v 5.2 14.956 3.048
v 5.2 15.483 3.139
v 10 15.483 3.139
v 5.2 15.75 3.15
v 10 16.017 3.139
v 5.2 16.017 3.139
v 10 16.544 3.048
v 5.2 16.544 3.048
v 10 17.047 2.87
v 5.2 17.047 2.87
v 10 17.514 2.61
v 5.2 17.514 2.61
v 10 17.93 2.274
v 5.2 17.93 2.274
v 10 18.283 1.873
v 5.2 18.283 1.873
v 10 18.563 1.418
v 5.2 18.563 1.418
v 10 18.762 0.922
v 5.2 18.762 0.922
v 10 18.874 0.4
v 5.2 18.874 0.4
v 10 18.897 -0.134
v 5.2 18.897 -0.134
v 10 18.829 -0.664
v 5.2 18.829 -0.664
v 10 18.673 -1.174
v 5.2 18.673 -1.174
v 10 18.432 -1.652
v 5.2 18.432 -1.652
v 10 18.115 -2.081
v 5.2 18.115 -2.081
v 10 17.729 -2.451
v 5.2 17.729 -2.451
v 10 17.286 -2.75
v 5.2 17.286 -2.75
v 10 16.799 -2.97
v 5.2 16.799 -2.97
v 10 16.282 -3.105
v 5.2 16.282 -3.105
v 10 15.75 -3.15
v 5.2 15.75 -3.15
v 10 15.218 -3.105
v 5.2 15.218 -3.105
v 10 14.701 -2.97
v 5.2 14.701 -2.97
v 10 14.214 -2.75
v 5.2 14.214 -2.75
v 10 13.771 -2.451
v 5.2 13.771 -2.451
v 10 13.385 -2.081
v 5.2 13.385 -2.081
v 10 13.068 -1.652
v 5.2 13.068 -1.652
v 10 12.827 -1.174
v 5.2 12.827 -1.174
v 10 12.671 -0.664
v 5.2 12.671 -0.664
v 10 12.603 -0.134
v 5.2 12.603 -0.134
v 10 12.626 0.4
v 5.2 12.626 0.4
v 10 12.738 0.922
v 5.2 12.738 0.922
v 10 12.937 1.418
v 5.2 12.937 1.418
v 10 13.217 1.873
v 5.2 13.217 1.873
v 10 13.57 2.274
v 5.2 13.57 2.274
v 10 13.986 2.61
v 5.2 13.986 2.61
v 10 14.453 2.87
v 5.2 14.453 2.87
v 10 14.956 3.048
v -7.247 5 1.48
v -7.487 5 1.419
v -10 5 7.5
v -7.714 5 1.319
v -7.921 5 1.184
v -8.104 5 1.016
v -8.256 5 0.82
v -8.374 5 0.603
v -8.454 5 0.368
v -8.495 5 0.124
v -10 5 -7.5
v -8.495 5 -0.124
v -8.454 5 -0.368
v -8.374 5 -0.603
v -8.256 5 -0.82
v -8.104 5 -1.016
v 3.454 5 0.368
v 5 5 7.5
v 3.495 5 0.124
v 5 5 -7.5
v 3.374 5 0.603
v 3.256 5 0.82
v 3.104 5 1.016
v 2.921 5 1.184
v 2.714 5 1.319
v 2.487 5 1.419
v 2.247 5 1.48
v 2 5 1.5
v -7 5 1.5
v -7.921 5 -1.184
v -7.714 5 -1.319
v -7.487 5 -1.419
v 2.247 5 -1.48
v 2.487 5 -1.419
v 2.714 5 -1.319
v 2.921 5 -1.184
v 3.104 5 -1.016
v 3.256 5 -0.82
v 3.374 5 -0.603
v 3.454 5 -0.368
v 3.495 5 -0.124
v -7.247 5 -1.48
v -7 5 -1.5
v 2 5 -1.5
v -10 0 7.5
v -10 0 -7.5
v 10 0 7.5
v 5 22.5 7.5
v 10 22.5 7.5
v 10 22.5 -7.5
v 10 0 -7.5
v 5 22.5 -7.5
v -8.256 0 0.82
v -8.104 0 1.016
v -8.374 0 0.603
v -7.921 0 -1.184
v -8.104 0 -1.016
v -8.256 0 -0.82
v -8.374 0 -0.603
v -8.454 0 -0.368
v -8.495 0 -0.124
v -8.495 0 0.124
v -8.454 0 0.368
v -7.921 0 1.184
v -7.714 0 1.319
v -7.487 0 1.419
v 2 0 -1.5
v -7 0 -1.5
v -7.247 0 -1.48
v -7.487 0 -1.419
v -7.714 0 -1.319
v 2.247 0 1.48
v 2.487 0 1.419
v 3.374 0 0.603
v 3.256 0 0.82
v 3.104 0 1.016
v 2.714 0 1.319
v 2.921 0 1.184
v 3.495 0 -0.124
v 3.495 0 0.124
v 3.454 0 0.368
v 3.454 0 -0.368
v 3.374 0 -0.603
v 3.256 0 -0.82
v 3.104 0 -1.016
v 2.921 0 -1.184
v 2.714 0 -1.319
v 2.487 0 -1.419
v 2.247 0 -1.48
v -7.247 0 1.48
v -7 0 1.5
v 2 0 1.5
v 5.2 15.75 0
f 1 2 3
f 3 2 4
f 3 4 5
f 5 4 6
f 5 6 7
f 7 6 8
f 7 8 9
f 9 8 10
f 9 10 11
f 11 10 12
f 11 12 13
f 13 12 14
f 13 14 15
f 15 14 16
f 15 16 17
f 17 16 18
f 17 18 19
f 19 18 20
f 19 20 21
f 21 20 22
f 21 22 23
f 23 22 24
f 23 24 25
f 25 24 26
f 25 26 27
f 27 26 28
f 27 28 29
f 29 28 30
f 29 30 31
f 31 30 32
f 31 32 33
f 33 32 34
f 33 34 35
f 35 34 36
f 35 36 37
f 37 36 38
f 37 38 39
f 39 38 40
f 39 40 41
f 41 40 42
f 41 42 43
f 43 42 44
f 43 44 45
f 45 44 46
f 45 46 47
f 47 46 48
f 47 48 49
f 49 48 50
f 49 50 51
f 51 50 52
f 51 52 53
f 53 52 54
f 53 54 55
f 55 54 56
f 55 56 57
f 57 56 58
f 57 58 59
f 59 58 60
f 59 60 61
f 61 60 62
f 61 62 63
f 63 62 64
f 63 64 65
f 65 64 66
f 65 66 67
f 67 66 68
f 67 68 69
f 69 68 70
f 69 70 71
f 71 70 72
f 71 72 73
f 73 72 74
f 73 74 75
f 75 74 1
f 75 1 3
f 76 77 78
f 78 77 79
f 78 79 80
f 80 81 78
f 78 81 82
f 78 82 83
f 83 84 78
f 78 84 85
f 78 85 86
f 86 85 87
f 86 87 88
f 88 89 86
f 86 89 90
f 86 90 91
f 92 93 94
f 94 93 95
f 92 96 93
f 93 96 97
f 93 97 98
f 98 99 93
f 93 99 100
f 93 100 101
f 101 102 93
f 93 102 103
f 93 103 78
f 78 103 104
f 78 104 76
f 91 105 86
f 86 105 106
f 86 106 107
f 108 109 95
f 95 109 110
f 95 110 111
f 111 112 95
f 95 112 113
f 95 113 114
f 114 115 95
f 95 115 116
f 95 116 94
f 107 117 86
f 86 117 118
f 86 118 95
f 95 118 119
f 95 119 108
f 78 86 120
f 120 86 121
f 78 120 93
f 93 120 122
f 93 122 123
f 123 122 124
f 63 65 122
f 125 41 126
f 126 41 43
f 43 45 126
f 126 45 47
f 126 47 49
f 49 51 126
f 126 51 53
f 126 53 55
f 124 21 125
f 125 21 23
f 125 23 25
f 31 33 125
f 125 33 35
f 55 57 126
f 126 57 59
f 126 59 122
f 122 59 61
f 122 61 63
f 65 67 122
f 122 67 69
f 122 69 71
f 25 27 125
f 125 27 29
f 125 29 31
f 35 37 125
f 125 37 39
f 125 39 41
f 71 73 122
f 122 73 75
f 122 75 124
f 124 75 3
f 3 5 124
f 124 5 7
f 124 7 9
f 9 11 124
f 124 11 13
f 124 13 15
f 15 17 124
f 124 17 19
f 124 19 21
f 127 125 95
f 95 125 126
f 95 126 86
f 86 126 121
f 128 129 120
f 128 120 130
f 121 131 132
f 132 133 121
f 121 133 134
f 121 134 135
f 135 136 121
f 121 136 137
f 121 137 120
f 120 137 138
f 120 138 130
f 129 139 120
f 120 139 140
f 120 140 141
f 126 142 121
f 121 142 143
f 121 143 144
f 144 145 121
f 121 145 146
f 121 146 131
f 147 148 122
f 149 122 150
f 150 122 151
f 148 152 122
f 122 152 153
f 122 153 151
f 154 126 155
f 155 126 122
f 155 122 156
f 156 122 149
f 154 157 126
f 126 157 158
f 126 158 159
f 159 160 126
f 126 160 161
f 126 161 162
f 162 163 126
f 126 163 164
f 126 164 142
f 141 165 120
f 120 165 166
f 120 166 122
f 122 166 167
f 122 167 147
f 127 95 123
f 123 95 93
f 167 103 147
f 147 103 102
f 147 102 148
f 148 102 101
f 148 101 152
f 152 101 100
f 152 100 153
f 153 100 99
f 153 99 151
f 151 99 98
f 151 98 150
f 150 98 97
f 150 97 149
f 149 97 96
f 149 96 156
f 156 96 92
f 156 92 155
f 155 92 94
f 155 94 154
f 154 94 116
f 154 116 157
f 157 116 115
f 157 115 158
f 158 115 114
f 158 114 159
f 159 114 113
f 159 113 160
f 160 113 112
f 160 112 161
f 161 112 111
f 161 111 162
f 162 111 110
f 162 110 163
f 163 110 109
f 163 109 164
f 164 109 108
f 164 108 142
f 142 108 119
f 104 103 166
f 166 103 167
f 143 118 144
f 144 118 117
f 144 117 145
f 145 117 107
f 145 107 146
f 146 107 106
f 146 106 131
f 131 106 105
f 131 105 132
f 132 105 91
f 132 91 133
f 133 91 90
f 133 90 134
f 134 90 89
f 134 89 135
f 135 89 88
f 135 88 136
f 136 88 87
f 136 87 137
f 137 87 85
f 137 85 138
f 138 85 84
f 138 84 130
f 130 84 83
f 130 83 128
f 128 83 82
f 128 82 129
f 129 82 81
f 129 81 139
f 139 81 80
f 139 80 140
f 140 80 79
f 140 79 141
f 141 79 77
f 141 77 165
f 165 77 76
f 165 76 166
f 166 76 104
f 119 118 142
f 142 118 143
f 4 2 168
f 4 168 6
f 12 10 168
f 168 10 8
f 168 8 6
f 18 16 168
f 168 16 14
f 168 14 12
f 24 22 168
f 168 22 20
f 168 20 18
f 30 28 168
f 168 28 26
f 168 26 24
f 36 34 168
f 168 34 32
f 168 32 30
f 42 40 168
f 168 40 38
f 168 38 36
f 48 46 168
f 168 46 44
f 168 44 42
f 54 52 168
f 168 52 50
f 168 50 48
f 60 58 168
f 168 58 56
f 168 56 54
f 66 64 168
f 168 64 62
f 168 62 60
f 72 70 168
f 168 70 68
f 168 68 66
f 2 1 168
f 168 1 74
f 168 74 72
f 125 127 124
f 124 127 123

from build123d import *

# Parameters (mm, degrees)
CROQUIS1_W              = 20
CROQUIS1_H              = 15
SALIENTE_EXTRUIR1_DEPTH = 5
CROQUIS2_W              = 5
CROQUIS2_H              = 15
SALIENTE_EXTRUIR2_DEPTH = 21.5
CROQUIS3_R              = 3.15
CORTAR_EXTRUIR1_DEPTH   = 20
CORTAR_EXTRUIR2_DEPTH   = 20
CROQUIS7_R              = 4
SALIENTE_EXTRUIR3_DEPTH = 0.2
CROQUIS8_W              = 15
CROQUIS8_H              = 4
CORTAR_EXTRUIR3_DEPTH   = 10


with BuildPart() as part:
    # Croquis1 → Saliente-Extruir1 (new body)
    with BuildSketch(Plane(origin=(0, 0, 0), x_dir=(1, 0, 0), z_dir=(0, 1, 0))):
        Rectangle(CROQUIS1_W, CROQUIS1_H)
    extrude(amount=SALIENTE_EXTRUIR1_DEPTH)

    # Croquis2 → Saliente-Extruir2 (add)
    with BuildSketch(Plane(origin=(0, 5, 0), x_dir=(1, 0, 0), z_dir=(0, 1, 0))):
        with Locations((7.5, 0)):
            Rectangle(CROQUIS2_W, CROQUIS2_H)
    extrude(amount=SALIENTE_EXTRUIR2_DEPTH)

    # Croquis3 → Cortar-Extruir1 (cut)
    with BuildSketch(Plane(origin=(10, 0, 0), x_dir=(0, 0, -1), z_dir=(1, 0, 0))):
        with Locations((0, 15.75)):
            Circle(CROQUIS3_R)
    extrude(amount=-CORTAR_EXTRUIR1_DEPTH, mode=Mode.SUBTRACT)

    # Croquis4 → Cortar-Extruir2 (cut)
    with BuildSketch(Plane(origin=(0, 5, 0), x_dir=(1, 0, 0), z_dir=(0, 1, 0))):
        with BuildLine():
            Line((-7, 1.5), (2, 1.5))
            ThreePointArc((2, 1.5), (3.5, 0), (2, -1.5))
            Line((2, -1.5), (-7, -1.5))
            ThreePointArc((-7, -1.5), (-8.5, 0), (-7, 1.5))
        make_face()
    extrude(amount=-CORTAR_EXTRUIR2_DEPTH, mode=Mode.SUBTRACT)

    # Croquis7 → Saliente-Extruir3 (add)
    with BuildSketch(Plane.ZY.offset(-5)):
        with Locations((0, 15.75)):
            Circle(CROQUIS7_R)
    extrude(amount=-SALIENTE_EXTRUIR3_DEPTH)

    # Croquis8 → Cortar-Extruir3 (cut)
    with BuildSketch(Plane(origin=(10, 0, 0), x_dir=(0, 0, -1), z_dir=(1, 0, 0))):
        with Locations((0, 24.5)):
            Rectangle(CROQUIS8_W, CROQUIS8_H)
    extrude(amount=-CORTAR_EXTRUIR3_DEPTH, mode=Mode.SUBTRACT)


solid = part.part
